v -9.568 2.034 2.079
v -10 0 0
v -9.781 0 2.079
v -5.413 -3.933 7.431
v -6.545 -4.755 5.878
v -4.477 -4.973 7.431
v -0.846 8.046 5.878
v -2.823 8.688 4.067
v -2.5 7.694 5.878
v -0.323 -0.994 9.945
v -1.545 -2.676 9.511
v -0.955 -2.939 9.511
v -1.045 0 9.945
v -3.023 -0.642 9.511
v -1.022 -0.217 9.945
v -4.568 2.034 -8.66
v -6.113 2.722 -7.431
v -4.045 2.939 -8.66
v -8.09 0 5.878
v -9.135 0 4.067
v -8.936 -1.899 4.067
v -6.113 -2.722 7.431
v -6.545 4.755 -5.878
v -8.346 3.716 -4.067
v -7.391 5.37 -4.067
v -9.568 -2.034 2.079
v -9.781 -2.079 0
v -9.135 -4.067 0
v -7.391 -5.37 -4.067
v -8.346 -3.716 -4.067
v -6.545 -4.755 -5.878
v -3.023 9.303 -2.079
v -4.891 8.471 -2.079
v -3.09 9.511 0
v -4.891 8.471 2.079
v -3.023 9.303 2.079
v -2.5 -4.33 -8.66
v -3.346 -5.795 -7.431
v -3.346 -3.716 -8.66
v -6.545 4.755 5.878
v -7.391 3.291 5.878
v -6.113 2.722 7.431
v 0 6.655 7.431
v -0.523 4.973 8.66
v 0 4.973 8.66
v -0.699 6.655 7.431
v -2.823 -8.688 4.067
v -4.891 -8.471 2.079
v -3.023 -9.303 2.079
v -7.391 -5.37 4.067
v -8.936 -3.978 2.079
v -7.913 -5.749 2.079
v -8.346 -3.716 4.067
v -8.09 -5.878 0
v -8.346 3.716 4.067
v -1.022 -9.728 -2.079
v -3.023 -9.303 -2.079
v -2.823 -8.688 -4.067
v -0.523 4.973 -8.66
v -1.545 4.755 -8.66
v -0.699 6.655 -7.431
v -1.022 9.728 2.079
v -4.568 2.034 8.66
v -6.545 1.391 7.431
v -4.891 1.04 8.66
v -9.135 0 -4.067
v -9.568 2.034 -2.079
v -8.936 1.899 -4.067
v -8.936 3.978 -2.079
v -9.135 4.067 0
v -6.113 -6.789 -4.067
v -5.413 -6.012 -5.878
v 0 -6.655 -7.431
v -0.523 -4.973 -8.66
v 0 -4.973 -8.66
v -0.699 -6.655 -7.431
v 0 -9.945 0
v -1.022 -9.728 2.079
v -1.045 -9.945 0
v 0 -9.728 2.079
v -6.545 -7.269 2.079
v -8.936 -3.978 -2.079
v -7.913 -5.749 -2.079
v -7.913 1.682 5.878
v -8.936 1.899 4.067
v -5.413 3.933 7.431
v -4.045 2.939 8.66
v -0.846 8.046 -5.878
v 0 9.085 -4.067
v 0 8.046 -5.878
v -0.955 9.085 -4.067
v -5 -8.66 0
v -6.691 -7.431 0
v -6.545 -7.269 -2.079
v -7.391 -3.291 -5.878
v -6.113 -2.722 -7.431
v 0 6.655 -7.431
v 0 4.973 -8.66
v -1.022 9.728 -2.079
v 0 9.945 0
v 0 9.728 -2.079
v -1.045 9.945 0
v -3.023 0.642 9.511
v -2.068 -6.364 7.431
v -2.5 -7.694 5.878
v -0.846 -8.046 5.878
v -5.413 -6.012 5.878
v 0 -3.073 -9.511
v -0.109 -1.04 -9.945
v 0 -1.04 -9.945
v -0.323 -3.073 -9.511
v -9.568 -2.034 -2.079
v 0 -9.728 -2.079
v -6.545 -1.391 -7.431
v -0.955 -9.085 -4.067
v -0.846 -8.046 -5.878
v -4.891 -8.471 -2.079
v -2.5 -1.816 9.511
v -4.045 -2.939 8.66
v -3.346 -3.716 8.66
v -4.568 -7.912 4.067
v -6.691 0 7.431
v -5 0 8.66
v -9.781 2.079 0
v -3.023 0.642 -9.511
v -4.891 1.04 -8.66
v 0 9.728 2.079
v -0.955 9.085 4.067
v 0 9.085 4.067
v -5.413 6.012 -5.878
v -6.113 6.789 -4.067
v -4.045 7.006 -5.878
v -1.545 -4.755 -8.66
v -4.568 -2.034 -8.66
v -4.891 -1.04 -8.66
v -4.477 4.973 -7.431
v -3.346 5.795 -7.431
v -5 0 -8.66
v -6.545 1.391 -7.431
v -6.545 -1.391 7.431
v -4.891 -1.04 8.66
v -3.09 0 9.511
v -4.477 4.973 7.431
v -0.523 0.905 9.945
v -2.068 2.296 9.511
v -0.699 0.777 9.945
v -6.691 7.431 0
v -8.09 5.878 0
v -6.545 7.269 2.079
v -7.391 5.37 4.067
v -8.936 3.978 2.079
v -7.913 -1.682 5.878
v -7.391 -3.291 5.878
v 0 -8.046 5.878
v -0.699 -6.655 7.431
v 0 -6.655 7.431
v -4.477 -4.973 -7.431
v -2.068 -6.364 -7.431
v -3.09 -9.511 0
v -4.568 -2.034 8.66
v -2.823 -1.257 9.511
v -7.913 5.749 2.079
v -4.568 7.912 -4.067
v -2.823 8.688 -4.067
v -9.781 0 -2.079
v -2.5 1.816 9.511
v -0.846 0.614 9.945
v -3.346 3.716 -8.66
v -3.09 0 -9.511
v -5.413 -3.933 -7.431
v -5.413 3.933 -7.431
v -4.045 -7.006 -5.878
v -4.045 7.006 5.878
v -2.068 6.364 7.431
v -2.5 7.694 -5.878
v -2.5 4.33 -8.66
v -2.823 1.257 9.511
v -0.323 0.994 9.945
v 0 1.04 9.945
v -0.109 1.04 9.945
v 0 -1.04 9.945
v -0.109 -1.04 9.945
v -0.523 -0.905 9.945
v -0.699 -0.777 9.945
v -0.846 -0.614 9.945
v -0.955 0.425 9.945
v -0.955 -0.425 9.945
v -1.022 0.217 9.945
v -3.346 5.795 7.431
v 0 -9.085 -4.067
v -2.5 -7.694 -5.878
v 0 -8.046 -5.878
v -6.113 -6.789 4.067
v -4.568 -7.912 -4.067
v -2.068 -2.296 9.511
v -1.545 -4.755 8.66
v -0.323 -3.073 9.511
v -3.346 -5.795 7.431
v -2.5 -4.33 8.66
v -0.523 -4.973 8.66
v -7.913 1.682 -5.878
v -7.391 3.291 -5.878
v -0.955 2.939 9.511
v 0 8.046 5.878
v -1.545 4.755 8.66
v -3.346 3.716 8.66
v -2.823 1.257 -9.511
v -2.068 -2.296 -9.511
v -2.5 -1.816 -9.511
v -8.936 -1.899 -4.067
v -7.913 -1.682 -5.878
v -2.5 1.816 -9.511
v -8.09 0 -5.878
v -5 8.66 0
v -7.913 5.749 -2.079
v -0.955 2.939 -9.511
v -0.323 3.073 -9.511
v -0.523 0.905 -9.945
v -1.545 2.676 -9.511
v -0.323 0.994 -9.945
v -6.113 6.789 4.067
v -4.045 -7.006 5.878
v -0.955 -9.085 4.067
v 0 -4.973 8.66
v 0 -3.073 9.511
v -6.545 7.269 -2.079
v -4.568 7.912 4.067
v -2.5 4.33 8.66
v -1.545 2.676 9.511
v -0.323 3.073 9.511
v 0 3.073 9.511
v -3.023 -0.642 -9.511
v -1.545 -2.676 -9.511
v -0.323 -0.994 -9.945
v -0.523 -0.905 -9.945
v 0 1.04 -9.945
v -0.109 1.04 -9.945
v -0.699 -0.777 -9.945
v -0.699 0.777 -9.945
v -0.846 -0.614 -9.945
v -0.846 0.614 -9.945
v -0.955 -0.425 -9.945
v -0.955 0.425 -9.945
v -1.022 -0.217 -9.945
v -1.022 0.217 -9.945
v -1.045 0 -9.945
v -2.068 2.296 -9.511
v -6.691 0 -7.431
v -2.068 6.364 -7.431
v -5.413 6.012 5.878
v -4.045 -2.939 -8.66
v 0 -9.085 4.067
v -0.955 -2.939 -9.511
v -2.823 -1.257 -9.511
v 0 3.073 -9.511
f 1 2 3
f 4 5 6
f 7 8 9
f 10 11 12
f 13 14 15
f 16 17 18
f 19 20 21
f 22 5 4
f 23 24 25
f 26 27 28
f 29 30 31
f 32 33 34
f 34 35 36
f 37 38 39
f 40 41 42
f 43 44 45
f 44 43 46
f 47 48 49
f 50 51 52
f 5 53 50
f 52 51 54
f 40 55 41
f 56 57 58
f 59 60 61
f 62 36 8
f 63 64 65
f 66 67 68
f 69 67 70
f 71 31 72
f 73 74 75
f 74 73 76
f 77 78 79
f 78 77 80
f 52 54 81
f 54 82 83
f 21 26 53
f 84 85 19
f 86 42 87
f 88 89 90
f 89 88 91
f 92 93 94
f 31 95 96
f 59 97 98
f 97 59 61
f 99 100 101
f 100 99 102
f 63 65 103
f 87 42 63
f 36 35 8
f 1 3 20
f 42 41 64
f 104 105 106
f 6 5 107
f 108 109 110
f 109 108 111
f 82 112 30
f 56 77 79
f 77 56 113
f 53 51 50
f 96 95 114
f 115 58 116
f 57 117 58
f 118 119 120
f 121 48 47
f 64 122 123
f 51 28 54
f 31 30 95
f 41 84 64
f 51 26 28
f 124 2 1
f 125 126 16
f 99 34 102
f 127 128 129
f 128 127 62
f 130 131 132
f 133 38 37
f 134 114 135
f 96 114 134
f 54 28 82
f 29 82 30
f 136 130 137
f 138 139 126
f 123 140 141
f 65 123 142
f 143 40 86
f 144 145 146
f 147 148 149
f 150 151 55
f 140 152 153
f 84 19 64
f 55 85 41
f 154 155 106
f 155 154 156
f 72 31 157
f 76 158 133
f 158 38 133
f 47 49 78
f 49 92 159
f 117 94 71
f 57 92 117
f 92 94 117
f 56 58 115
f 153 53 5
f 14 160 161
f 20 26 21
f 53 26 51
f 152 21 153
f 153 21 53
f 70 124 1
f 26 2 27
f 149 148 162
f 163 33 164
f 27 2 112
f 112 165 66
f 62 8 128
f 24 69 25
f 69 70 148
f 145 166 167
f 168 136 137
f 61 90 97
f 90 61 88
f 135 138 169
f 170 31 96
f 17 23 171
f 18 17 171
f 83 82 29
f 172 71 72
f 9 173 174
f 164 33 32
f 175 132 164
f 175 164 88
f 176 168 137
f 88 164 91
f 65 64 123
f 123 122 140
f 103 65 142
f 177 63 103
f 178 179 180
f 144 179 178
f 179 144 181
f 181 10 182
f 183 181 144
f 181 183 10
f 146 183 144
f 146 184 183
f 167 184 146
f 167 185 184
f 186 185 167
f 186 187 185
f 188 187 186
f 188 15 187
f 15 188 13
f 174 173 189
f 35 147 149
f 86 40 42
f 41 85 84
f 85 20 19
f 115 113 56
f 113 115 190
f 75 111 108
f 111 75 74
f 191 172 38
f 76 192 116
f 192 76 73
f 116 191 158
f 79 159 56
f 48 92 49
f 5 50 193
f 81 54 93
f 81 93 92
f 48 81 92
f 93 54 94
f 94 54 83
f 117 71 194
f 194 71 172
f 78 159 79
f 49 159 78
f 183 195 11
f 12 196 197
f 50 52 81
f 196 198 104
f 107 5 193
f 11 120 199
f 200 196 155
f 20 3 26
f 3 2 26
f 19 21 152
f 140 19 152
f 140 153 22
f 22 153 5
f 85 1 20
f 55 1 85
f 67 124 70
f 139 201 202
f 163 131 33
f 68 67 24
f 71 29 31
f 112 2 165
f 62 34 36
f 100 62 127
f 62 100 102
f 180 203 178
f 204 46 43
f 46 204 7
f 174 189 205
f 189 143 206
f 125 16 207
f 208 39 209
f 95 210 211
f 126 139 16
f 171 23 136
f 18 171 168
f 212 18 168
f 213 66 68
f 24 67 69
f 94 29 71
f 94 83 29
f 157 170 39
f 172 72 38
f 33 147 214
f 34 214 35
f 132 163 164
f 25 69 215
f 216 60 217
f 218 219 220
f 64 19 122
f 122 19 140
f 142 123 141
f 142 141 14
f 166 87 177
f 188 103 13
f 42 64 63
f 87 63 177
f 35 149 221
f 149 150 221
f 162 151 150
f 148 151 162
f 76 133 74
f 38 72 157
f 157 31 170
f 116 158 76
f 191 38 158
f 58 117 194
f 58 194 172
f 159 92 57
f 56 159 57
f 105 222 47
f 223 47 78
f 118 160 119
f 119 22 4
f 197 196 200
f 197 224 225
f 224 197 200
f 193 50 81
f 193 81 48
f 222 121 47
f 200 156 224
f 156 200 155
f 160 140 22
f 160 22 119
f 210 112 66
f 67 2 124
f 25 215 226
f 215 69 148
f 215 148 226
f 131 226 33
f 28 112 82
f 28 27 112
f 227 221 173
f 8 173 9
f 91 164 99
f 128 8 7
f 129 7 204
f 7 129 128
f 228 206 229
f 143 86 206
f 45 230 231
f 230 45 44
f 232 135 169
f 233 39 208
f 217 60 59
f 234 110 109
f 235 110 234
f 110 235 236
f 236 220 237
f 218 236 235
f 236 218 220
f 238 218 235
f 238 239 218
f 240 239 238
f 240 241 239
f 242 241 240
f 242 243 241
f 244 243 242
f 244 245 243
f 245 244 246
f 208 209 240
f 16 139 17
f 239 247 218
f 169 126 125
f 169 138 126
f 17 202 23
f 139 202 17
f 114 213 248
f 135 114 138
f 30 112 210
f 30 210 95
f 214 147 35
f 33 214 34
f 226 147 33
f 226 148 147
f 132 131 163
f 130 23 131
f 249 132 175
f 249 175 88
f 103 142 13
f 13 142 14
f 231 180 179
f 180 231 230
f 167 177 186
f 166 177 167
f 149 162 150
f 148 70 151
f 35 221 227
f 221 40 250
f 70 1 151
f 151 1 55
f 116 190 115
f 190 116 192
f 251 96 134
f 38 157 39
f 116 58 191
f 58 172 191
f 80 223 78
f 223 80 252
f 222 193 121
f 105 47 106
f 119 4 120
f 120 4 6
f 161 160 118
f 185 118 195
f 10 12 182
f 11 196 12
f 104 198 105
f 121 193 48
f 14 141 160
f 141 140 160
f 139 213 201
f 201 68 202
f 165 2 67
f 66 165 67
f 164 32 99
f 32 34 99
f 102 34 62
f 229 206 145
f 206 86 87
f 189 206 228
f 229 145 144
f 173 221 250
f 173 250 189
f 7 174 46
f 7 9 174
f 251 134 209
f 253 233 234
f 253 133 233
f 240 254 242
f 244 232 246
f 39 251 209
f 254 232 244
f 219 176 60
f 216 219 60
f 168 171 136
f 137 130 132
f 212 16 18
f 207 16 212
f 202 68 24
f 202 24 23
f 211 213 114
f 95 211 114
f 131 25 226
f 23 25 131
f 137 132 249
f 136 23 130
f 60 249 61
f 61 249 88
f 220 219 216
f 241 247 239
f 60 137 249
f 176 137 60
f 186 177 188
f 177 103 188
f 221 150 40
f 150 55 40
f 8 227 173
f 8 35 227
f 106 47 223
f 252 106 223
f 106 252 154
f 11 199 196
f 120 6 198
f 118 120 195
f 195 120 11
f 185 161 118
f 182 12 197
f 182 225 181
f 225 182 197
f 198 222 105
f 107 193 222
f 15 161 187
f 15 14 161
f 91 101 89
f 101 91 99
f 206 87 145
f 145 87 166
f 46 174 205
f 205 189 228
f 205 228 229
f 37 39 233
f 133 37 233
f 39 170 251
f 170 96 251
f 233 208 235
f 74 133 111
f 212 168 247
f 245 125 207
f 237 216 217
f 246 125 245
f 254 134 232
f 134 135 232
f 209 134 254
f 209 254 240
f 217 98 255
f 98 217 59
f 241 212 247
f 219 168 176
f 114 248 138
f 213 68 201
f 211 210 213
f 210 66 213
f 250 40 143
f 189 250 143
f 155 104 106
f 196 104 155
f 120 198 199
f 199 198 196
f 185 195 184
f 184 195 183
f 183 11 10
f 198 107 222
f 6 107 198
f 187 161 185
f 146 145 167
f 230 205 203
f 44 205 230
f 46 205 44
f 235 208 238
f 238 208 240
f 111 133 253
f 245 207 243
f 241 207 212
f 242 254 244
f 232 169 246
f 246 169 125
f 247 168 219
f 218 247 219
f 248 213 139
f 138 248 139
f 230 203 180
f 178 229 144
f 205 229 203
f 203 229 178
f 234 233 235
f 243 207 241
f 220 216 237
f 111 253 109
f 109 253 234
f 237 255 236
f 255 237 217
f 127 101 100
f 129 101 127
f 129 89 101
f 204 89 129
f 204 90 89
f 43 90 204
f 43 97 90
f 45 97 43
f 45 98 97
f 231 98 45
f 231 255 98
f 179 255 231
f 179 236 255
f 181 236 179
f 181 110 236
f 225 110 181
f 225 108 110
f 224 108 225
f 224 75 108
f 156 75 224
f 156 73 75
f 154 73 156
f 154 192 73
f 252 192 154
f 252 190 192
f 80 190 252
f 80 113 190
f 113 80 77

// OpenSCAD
difference(){
sphere(20/2);
translate([0,-15,-15])cube(30);
}
